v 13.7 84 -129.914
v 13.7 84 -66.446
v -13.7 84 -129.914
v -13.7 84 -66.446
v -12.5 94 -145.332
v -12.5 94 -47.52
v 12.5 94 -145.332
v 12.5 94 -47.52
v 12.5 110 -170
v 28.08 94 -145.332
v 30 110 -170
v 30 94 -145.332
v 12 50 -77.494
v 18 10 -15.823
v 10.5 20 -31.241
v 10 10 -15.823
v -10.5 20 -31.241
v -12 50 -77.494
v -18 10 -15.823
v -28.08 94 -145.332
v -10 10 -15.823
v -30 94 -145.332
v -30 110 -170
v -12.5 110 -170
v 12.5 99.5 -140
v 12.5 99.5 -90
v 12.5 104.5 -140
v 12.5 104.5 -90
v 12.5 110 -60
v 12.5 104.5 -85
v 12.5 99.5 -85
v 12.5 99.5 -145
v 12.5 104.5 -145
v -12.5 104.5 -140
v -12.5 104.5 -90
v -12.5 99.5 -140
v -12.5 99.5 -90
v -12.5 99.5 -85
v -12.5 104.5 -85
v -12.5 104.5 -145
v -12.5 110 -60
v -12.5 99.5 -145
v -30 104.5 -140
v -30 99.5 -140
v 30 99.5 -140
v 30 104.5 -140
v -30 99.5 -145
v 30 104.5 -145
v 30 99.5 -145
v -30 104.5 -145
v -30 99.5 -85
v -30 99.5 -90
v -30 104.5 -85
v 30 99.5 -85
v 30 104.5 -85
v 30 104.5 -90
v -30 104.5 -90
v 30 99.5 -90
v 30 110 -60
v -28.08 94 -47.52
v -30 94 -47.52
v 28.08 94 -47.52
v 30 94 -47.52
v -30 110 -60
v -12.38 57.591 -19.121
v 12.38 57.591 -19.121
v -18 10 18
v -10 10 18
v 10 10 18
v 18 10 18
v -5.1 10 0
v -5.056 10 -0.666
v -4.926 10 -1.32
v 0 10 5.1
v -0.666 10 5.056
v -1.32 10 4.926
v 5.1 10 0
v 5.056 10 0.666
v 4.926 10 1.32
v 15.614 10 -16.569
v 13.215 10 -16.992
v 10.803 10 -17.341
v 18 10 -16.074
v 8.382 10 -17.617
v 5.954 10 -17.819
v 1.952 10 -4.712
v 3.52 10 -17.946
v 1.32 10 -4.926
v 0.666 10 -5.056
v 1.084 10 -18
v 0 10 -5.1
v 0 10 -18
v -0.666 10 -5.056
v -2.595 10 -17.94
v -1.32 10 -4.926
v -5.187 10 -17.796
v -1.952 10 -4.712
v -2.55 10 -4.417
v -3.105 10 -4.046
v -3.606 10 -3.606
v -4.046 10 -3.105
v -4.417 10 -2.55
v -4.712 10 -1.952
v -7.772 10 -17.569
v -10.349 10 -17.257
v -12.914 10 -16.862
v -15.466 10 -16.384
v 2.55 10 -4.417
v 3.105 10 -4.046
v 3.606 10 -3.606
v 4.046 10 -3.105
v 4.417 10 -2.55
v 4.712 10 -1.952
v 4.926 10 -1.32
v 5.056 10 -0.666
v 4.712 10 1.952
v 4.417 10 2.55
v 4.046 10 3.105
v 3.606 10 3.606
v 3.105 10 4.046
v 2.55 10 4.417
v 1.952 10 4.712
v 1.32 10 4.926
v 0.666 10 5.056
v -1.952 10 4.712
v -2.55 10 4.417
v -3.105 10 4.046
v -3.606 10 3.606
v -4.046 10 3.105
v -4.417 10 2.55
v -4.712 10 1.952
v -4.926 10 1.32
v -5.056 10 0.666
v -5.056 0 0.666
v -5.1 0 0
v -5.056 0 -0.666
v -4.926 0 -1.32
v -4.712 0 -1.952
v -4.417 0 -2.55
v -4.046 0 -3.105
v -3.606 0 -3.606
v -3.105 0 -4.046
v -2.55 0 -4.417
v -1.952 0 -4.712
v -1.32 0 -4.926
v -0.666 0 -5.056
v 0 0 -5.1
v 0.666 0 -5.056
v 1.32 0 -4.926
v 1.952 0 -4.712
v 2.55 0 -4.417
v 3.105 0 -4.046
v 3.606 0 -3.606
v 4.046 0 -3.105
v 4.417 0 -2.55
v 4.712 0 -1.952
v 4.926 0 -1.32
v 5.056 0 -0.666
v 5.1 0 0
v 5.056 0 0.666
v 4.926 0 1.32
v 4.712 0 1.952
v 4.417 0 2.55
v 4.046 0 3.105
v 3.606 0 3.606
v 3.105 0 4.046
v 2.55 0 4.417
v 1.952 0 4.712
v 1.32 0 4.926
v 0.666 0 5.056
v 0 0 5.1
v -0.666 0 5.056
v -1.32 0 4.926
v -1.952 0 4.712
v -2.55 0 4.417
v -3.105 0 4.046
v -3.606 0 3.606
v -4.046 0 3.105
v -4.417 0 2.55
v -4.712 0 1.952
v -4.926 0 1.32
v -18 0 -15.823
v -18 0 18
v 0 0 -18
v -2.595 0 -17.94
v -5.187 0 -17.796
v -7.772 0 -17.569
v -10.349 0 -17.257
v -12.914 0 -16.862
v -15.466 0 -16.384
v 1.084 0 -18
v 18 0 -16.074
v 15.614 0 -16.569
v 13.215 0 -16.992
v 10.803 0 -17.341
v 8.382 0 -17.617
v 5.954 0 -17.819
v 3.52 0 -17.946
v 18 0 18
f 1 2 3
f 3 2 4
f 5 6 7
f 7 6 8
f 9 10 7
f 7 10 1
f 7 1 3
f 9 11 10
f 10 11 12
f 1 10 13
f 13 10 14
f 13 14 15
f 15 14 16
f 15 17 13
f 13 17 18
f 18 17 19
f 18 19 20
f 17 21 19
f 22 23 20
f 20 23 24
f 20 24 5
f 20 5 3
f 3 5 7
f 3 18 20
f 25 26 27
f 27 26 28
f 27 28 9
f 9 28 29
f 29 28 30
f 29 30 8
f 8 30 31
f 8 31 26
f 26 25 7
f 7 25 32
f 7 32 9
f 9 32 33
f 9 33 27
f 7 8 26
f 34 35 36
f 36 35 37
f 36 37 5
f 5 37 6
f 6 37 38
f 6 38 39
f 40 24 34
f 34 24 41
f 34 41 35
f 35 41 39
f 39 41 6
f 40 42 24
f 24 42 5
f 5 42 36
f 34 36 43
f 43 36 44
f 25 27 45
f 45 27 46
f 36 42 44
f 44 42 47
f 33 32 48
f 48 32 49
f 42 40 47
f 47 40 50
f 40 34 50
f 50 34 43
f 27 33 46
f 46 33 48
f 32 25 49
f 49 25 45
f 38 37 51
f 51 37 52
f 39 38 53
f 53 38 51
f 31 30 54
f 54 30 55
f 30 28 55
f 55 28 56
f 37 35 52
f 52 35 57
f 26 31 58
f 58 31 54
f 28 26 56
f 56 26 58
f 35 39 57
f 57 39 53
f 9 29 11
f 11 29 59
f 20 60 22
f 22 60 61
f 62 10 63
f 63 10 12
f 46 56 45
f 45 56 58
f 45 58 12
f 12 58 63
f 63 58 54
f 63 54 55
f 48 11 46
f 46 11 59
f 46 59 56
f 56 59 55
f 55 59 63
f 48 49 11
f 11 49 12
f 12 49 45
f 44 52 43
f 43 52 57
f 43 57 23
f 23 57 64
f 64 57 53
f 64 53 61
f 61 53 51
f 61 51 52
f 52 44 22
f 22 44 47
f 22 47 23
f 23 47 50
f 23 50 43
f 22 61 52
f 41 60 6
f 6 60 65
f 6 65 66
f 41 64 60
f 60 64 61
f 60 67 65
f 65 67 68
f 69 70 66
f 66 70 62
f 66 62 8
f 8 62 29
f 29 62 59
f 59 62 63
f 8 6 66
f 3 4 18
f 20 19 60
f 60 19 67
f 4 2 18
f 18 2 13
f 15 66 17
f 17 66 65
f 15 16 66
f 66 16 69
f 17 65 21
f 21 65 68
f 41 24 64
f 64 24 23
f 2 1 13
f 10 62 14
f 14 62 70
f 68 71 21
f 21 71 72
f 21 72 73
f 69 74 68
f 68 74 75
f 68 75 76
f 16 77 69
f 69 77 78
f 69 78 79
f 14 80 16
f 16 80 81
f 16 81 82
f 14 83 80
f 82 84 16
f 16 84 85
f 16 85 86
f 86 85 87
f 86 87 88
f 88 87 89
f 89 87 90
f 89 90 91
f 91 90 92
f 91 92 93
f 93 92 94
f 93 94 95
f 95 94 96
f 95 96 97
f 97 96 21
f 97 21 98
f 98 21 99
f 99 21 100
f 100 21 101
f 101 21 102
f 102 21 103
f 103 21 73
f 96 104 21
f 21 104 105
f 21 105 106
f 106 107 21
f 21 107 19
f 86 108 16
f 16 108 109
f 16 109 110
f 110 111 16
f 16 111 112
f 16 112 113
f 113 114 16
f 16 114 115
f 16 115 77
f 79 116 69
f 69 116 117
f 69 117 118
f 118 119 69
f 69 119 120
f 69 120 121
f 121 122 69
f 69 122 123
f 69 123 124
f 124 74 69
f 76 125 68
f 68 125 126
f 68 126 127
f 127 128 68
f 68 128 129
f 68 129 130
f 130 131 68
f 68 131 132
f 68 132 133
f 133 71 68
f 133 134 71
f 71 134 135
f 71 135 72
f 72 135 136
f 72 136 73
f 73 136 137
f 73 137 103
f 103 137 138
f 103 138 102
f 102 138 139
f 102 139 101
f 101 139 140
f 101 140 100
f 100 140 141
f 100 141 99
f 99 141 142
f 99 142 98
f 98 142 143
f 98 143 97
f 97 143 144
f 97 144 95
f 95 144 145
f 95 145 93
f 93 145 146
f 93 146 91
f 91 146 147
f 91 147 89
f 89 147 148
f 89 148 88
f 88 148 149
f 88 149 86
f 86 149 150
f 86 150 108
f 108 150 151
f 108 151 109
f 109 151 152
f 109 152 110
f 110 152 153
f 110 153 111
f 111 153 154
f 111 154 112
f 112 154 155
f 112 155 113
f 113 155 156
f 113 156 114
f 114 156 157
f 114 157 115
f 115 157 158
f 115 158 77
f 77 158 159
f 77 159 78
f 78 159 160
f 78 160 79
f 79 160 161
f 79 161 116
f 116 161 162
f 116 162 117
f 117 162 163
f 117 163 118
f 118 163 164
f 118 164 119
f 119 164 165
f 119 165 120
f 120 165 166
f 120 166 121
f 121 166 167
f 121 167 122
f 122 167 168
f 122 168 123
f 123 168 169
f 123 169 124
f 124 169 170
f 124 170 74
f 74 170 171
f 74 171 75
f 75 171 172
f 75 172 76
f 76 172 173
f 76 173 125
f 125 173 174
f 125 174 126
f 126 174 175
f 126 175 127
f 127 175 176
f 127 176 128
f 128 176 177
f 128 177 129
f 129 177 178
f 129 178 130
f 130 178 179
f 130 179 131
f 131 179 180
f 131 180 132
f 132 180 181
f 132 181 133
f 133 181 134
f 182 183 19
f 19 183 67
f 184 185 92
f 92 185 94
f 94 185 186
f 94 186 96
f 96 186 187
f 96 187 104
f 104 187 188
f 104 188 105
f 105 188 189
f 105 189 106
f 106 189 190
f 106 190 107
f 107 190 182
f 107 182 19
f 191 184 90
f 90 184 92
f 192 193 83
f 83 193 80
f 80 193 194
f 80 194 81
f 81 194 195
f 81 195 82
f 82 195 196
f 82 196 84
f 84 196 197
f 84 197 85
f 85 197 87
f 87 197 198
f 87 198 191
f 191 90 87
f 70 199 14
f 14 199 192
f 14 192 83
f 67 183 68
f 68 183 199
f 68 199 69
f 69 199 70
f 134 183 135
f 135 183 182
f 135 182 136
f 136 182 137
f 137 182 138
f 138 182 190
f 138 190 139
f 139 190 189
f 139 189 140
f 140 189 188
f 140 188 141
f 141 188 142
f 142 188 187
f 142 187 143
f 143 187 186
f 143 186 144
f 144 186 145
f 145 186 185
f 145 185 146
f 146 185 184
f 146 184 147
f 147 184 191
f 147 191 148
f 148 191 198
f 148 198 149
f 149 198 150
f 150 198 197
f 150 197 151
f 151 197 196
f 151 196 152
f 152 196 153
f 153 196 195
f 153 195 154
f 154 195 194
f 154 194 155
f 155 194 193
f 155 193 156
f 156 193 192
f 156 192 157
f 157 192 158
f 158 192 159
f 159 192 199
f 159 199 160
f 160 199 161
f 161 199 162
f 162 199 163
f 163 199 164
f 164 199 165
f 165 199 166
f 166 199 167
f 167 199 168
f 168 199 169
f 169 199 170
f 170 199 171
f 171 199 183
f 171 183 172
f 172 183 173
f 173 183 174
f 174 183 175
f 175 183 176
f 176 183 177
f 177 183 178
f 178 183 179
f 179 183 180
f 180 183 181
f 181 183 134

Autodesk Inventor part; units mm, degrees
ref_plane "YZ Plane" through (0, 0, 0) normal (1, 0, 0) x (0, 1, 0)
sketch "Sketch1" plane through (0, 0, 0) normal (0, 1, 0) x (-1, 0, 0)
  line L0 (18, 18) -> (-18, 18)
  line L1 (-18, 18) -> (-18, -18)
  line L2 (-1.0844, -18) -> (0, -18)
  line L3 (18, -18) -> (18, 18)
  line L4 (0, 31.7221) -> (0, -30.6703)
  line L5 (20.2298, 0) -> (-39.3416, 0)
  line L6 (18, 62) -> (-19.0844, 62) construction
  arc A0 (0, -18) -> (18, -15.8234) centre (-0.5422, 62) ccw
  arc A1 (-18, -16.0738) -> (-1.0844, -18) centre (-0.5422, 62) ccw
  circle A2 centre (0, 0) radius 5.1
  dimension "d0" = 36
  dimension "d1" = 36
  dimension "d2" = 80
  dimension "d6" = 10.2
extrude "Extrusion1" add sketch "Sketch1" along normal blind 10
extrude "Extrusion2" cut sketch "Sketch1" along normal through all contours A2 L5 L4 | L4 L5 A2 | A2 L4 L5 | L4 A2 L5
sketch "Sketch2" plane through (0, 10, 0) normal (0, 1, 0) x (1, 0, 0)
  circle A0 centre (0, 0) radius 5.1 construction
  line L0 (-18, -18) -> (18, -18) construction
  line L1 (18, -18) -> (18, 16.0738) construction
  arc A1 (18, 16.0738) -> (1.0844, 18) centre (0.5422, -62) ccw construction
  line L2 (1.0844, 18) -> (0, 18) construction
  arc A2 (0, 18) -> (-18, 15.8234) centre (0.5422, -62) ccw construction
  line L3 (-18, 15.8234) -> (-18, -18) construction
  line L4 (18, -18) -> (10, -18)
  line L5 (10, -18) -> (10, 15.8234)
  line L6 (10, 15.8234) -> (18, 15.8234)
  line L7 (18, 15.8234) -> (18, -18)
  dimension "d9" = 8
ref_plane "height_panel" through (0, 110, 0) normal (0, 1, 0) x (1, 0, 0)
sketch "Sketch3" plane through (0, 110, 0) normal (0, 1, 0) x (1, 0, 0)
  line L0 (15, 60) -> (30, 60)
  line L1 (30, 60) -> (30, 170)
  line L2 (30, 170) -> (15, 170)
  line L3 (15, 170) -> (15, 60)
  line L4 (0, -34.344) -> (0, 41.1374) construction
  circle A0 centre (0, 0) radius 5.1 construction
  line L5 (0, 0) -> (37.0806, 0) construction
  line L6 (0, 0) -> (-113.2425, 196.1417) construction
  line L7 (0, 0) -> (113.2425, 196.1417) construction
  dimension "d15" = 15
  dimension "d16" = 110
  dimension "d17" = 30
  dimension "d18" = 0
  dimension "d20" = 60
  dimension "d23" = 60
loft "support_panel" add profiles "Sketch2", "Sketch3"
ref_plane "Work Plane2" through (0, 0, -15.8234) normal (-1, 0, 0) x (0, 0, 1)
mirror "Mirror1" about plane through (0, 0, -15.8234) normal (-1, 0, 0) of "support_panel"
sketch "Sketch4" plane through (0, 0, -15.8234) normal (-1, 0, 0) x (0, 0, 1)
  line L0 (0, 10) -> (33.8234, 10) construction
  line L1 (33.8234, 10) -> (-44.1766, 110) construction
  line L2 (-154.1766, 110) -> (-44.1766, 110) construction
  line L3 (0, 10) -> (-154.1766, 110) construction
  line L4 (0, 10) -> (-154.1766, 110) projected
  line L5 (-61.6706, 50) -> (-42.7634, 108.1882)
  line L6 (33.8234, 10) -> (-44.1766, 110) projected
  line L7 (-3.2973, 57.5907) -> (-15.4177, 20)
  line L8 (-42.7634, 108.1882) -> (-3.2973, 57.5907)
  line L9 (-61.6706, 50) -> (-15.4177, 20)
  point P0 (15.8234, 0)
  dimension "d24" = 60
  dimension "d25" = 90
extrude "Extrusion3" add sketch "Sketch4" along normal mid plane 38
sketch "Sketch5" plane through (0, 0, -15.8234) normal (-1, 0, 0) x (0, 0, 1)
  line L0 (-20.1302, 94) -> (-176.0391, 94) construction
  line L1 (-154.1766, 110) -> (-44.1766, 110) construction
  line L2 (-18.8309, 102) -> (-169.7053, 102) construction
  line L3 (33.8234, 10) -> (-44.1766, 110) construction
  line L4 (-44.1766, 110) -> (-44.1766, 74.3483) construction
  line L5 (-71.6766, 137.3856) -> (-71.6766, 103.9302) construction
  line L6 (-126.6766, 137.3856) -> (-126.6766, 97.2716) construction
  line L7 (-44.1766, 110) -> (-154.1766, 110) construction
  line L8 (-99.1766, 110) -> (-99.1766, 73.2356) construction
  circle A0 centre (-71.6766, 102) radius 2.5 construction
  line L9 (-69.1766, 104.5) -> (-74.1766, 104.5)
  line L10 (-74.1766, 104.5) -> (-74.1766, 99.5)
  line L11 (-74.1766, 99.5) -> (-69.1766, 99.5)
  line L12 (-69.1766, 99.5) -> (-69.1766, 104.5)
  circle A1 centre (-126.6766, 102) radius 2.5 construction
  line L13 (-129.1766, 104.5) -> (-124.1766, 104.5)
  line L14 (-124.1766, 104.5) -> (-124.1766, 99.5)
  line L15 (-124.1766, 99.5) -> (-129.1766, 99.5)
  line L16 (-129.1766, 99.5) -> (-129.1766, 104.5)
  line L17 (-44.1766, 110) -> (-31.6966, 94)
  line L18 (0, 10) -> (-154.1766, 110) projected
  line L19 (-129.5083, 94) -> (-154.1766, 110)
  line L20 (-154.1766, 110) -> (-44.1766, 110)
  line L21 (-31.6966, 94) -> (-129.5083, 94)
  line L22 (-44.1766, 94) -> (-129.5083, 94)
  line L23 (-44.1766, 94) -> (-44.1766, 84)
  line L24 (-44.1766, 84) -> (-114.0907, 84)
  line L25 (-114.0907, 84) -> (-129.5083, 94)
  line L26 (-44.1766, 94) -> (-129.5083, 94)
  point P0 (15.8234, 0)
  dimension "d28" = 16
  dimension "d29" = 8
  dimension "d30" = 55
  dimension "d31" = 5
  dimension "d40" = 10
extrude "Extrusion5" add sketch "Sketch5" along normal mid plane 60 contours L17 L21 L18 L20
extrude "installation_rack" cut sketch "Sketch5" along normal mid plane 25 contours L17 L21 L18 L20
extrude "Extrusion7" cut sketch "Sketch5" along normal through all both and the other way through all contours L12 L11 L10 L9 | L13 L14 L15 L16
extrude "Extrusion8" add sketch "Sketch5" along normal mid plane 30 contours L23 L24 L18 L21
properties part number "PRING_vertical_bar"
